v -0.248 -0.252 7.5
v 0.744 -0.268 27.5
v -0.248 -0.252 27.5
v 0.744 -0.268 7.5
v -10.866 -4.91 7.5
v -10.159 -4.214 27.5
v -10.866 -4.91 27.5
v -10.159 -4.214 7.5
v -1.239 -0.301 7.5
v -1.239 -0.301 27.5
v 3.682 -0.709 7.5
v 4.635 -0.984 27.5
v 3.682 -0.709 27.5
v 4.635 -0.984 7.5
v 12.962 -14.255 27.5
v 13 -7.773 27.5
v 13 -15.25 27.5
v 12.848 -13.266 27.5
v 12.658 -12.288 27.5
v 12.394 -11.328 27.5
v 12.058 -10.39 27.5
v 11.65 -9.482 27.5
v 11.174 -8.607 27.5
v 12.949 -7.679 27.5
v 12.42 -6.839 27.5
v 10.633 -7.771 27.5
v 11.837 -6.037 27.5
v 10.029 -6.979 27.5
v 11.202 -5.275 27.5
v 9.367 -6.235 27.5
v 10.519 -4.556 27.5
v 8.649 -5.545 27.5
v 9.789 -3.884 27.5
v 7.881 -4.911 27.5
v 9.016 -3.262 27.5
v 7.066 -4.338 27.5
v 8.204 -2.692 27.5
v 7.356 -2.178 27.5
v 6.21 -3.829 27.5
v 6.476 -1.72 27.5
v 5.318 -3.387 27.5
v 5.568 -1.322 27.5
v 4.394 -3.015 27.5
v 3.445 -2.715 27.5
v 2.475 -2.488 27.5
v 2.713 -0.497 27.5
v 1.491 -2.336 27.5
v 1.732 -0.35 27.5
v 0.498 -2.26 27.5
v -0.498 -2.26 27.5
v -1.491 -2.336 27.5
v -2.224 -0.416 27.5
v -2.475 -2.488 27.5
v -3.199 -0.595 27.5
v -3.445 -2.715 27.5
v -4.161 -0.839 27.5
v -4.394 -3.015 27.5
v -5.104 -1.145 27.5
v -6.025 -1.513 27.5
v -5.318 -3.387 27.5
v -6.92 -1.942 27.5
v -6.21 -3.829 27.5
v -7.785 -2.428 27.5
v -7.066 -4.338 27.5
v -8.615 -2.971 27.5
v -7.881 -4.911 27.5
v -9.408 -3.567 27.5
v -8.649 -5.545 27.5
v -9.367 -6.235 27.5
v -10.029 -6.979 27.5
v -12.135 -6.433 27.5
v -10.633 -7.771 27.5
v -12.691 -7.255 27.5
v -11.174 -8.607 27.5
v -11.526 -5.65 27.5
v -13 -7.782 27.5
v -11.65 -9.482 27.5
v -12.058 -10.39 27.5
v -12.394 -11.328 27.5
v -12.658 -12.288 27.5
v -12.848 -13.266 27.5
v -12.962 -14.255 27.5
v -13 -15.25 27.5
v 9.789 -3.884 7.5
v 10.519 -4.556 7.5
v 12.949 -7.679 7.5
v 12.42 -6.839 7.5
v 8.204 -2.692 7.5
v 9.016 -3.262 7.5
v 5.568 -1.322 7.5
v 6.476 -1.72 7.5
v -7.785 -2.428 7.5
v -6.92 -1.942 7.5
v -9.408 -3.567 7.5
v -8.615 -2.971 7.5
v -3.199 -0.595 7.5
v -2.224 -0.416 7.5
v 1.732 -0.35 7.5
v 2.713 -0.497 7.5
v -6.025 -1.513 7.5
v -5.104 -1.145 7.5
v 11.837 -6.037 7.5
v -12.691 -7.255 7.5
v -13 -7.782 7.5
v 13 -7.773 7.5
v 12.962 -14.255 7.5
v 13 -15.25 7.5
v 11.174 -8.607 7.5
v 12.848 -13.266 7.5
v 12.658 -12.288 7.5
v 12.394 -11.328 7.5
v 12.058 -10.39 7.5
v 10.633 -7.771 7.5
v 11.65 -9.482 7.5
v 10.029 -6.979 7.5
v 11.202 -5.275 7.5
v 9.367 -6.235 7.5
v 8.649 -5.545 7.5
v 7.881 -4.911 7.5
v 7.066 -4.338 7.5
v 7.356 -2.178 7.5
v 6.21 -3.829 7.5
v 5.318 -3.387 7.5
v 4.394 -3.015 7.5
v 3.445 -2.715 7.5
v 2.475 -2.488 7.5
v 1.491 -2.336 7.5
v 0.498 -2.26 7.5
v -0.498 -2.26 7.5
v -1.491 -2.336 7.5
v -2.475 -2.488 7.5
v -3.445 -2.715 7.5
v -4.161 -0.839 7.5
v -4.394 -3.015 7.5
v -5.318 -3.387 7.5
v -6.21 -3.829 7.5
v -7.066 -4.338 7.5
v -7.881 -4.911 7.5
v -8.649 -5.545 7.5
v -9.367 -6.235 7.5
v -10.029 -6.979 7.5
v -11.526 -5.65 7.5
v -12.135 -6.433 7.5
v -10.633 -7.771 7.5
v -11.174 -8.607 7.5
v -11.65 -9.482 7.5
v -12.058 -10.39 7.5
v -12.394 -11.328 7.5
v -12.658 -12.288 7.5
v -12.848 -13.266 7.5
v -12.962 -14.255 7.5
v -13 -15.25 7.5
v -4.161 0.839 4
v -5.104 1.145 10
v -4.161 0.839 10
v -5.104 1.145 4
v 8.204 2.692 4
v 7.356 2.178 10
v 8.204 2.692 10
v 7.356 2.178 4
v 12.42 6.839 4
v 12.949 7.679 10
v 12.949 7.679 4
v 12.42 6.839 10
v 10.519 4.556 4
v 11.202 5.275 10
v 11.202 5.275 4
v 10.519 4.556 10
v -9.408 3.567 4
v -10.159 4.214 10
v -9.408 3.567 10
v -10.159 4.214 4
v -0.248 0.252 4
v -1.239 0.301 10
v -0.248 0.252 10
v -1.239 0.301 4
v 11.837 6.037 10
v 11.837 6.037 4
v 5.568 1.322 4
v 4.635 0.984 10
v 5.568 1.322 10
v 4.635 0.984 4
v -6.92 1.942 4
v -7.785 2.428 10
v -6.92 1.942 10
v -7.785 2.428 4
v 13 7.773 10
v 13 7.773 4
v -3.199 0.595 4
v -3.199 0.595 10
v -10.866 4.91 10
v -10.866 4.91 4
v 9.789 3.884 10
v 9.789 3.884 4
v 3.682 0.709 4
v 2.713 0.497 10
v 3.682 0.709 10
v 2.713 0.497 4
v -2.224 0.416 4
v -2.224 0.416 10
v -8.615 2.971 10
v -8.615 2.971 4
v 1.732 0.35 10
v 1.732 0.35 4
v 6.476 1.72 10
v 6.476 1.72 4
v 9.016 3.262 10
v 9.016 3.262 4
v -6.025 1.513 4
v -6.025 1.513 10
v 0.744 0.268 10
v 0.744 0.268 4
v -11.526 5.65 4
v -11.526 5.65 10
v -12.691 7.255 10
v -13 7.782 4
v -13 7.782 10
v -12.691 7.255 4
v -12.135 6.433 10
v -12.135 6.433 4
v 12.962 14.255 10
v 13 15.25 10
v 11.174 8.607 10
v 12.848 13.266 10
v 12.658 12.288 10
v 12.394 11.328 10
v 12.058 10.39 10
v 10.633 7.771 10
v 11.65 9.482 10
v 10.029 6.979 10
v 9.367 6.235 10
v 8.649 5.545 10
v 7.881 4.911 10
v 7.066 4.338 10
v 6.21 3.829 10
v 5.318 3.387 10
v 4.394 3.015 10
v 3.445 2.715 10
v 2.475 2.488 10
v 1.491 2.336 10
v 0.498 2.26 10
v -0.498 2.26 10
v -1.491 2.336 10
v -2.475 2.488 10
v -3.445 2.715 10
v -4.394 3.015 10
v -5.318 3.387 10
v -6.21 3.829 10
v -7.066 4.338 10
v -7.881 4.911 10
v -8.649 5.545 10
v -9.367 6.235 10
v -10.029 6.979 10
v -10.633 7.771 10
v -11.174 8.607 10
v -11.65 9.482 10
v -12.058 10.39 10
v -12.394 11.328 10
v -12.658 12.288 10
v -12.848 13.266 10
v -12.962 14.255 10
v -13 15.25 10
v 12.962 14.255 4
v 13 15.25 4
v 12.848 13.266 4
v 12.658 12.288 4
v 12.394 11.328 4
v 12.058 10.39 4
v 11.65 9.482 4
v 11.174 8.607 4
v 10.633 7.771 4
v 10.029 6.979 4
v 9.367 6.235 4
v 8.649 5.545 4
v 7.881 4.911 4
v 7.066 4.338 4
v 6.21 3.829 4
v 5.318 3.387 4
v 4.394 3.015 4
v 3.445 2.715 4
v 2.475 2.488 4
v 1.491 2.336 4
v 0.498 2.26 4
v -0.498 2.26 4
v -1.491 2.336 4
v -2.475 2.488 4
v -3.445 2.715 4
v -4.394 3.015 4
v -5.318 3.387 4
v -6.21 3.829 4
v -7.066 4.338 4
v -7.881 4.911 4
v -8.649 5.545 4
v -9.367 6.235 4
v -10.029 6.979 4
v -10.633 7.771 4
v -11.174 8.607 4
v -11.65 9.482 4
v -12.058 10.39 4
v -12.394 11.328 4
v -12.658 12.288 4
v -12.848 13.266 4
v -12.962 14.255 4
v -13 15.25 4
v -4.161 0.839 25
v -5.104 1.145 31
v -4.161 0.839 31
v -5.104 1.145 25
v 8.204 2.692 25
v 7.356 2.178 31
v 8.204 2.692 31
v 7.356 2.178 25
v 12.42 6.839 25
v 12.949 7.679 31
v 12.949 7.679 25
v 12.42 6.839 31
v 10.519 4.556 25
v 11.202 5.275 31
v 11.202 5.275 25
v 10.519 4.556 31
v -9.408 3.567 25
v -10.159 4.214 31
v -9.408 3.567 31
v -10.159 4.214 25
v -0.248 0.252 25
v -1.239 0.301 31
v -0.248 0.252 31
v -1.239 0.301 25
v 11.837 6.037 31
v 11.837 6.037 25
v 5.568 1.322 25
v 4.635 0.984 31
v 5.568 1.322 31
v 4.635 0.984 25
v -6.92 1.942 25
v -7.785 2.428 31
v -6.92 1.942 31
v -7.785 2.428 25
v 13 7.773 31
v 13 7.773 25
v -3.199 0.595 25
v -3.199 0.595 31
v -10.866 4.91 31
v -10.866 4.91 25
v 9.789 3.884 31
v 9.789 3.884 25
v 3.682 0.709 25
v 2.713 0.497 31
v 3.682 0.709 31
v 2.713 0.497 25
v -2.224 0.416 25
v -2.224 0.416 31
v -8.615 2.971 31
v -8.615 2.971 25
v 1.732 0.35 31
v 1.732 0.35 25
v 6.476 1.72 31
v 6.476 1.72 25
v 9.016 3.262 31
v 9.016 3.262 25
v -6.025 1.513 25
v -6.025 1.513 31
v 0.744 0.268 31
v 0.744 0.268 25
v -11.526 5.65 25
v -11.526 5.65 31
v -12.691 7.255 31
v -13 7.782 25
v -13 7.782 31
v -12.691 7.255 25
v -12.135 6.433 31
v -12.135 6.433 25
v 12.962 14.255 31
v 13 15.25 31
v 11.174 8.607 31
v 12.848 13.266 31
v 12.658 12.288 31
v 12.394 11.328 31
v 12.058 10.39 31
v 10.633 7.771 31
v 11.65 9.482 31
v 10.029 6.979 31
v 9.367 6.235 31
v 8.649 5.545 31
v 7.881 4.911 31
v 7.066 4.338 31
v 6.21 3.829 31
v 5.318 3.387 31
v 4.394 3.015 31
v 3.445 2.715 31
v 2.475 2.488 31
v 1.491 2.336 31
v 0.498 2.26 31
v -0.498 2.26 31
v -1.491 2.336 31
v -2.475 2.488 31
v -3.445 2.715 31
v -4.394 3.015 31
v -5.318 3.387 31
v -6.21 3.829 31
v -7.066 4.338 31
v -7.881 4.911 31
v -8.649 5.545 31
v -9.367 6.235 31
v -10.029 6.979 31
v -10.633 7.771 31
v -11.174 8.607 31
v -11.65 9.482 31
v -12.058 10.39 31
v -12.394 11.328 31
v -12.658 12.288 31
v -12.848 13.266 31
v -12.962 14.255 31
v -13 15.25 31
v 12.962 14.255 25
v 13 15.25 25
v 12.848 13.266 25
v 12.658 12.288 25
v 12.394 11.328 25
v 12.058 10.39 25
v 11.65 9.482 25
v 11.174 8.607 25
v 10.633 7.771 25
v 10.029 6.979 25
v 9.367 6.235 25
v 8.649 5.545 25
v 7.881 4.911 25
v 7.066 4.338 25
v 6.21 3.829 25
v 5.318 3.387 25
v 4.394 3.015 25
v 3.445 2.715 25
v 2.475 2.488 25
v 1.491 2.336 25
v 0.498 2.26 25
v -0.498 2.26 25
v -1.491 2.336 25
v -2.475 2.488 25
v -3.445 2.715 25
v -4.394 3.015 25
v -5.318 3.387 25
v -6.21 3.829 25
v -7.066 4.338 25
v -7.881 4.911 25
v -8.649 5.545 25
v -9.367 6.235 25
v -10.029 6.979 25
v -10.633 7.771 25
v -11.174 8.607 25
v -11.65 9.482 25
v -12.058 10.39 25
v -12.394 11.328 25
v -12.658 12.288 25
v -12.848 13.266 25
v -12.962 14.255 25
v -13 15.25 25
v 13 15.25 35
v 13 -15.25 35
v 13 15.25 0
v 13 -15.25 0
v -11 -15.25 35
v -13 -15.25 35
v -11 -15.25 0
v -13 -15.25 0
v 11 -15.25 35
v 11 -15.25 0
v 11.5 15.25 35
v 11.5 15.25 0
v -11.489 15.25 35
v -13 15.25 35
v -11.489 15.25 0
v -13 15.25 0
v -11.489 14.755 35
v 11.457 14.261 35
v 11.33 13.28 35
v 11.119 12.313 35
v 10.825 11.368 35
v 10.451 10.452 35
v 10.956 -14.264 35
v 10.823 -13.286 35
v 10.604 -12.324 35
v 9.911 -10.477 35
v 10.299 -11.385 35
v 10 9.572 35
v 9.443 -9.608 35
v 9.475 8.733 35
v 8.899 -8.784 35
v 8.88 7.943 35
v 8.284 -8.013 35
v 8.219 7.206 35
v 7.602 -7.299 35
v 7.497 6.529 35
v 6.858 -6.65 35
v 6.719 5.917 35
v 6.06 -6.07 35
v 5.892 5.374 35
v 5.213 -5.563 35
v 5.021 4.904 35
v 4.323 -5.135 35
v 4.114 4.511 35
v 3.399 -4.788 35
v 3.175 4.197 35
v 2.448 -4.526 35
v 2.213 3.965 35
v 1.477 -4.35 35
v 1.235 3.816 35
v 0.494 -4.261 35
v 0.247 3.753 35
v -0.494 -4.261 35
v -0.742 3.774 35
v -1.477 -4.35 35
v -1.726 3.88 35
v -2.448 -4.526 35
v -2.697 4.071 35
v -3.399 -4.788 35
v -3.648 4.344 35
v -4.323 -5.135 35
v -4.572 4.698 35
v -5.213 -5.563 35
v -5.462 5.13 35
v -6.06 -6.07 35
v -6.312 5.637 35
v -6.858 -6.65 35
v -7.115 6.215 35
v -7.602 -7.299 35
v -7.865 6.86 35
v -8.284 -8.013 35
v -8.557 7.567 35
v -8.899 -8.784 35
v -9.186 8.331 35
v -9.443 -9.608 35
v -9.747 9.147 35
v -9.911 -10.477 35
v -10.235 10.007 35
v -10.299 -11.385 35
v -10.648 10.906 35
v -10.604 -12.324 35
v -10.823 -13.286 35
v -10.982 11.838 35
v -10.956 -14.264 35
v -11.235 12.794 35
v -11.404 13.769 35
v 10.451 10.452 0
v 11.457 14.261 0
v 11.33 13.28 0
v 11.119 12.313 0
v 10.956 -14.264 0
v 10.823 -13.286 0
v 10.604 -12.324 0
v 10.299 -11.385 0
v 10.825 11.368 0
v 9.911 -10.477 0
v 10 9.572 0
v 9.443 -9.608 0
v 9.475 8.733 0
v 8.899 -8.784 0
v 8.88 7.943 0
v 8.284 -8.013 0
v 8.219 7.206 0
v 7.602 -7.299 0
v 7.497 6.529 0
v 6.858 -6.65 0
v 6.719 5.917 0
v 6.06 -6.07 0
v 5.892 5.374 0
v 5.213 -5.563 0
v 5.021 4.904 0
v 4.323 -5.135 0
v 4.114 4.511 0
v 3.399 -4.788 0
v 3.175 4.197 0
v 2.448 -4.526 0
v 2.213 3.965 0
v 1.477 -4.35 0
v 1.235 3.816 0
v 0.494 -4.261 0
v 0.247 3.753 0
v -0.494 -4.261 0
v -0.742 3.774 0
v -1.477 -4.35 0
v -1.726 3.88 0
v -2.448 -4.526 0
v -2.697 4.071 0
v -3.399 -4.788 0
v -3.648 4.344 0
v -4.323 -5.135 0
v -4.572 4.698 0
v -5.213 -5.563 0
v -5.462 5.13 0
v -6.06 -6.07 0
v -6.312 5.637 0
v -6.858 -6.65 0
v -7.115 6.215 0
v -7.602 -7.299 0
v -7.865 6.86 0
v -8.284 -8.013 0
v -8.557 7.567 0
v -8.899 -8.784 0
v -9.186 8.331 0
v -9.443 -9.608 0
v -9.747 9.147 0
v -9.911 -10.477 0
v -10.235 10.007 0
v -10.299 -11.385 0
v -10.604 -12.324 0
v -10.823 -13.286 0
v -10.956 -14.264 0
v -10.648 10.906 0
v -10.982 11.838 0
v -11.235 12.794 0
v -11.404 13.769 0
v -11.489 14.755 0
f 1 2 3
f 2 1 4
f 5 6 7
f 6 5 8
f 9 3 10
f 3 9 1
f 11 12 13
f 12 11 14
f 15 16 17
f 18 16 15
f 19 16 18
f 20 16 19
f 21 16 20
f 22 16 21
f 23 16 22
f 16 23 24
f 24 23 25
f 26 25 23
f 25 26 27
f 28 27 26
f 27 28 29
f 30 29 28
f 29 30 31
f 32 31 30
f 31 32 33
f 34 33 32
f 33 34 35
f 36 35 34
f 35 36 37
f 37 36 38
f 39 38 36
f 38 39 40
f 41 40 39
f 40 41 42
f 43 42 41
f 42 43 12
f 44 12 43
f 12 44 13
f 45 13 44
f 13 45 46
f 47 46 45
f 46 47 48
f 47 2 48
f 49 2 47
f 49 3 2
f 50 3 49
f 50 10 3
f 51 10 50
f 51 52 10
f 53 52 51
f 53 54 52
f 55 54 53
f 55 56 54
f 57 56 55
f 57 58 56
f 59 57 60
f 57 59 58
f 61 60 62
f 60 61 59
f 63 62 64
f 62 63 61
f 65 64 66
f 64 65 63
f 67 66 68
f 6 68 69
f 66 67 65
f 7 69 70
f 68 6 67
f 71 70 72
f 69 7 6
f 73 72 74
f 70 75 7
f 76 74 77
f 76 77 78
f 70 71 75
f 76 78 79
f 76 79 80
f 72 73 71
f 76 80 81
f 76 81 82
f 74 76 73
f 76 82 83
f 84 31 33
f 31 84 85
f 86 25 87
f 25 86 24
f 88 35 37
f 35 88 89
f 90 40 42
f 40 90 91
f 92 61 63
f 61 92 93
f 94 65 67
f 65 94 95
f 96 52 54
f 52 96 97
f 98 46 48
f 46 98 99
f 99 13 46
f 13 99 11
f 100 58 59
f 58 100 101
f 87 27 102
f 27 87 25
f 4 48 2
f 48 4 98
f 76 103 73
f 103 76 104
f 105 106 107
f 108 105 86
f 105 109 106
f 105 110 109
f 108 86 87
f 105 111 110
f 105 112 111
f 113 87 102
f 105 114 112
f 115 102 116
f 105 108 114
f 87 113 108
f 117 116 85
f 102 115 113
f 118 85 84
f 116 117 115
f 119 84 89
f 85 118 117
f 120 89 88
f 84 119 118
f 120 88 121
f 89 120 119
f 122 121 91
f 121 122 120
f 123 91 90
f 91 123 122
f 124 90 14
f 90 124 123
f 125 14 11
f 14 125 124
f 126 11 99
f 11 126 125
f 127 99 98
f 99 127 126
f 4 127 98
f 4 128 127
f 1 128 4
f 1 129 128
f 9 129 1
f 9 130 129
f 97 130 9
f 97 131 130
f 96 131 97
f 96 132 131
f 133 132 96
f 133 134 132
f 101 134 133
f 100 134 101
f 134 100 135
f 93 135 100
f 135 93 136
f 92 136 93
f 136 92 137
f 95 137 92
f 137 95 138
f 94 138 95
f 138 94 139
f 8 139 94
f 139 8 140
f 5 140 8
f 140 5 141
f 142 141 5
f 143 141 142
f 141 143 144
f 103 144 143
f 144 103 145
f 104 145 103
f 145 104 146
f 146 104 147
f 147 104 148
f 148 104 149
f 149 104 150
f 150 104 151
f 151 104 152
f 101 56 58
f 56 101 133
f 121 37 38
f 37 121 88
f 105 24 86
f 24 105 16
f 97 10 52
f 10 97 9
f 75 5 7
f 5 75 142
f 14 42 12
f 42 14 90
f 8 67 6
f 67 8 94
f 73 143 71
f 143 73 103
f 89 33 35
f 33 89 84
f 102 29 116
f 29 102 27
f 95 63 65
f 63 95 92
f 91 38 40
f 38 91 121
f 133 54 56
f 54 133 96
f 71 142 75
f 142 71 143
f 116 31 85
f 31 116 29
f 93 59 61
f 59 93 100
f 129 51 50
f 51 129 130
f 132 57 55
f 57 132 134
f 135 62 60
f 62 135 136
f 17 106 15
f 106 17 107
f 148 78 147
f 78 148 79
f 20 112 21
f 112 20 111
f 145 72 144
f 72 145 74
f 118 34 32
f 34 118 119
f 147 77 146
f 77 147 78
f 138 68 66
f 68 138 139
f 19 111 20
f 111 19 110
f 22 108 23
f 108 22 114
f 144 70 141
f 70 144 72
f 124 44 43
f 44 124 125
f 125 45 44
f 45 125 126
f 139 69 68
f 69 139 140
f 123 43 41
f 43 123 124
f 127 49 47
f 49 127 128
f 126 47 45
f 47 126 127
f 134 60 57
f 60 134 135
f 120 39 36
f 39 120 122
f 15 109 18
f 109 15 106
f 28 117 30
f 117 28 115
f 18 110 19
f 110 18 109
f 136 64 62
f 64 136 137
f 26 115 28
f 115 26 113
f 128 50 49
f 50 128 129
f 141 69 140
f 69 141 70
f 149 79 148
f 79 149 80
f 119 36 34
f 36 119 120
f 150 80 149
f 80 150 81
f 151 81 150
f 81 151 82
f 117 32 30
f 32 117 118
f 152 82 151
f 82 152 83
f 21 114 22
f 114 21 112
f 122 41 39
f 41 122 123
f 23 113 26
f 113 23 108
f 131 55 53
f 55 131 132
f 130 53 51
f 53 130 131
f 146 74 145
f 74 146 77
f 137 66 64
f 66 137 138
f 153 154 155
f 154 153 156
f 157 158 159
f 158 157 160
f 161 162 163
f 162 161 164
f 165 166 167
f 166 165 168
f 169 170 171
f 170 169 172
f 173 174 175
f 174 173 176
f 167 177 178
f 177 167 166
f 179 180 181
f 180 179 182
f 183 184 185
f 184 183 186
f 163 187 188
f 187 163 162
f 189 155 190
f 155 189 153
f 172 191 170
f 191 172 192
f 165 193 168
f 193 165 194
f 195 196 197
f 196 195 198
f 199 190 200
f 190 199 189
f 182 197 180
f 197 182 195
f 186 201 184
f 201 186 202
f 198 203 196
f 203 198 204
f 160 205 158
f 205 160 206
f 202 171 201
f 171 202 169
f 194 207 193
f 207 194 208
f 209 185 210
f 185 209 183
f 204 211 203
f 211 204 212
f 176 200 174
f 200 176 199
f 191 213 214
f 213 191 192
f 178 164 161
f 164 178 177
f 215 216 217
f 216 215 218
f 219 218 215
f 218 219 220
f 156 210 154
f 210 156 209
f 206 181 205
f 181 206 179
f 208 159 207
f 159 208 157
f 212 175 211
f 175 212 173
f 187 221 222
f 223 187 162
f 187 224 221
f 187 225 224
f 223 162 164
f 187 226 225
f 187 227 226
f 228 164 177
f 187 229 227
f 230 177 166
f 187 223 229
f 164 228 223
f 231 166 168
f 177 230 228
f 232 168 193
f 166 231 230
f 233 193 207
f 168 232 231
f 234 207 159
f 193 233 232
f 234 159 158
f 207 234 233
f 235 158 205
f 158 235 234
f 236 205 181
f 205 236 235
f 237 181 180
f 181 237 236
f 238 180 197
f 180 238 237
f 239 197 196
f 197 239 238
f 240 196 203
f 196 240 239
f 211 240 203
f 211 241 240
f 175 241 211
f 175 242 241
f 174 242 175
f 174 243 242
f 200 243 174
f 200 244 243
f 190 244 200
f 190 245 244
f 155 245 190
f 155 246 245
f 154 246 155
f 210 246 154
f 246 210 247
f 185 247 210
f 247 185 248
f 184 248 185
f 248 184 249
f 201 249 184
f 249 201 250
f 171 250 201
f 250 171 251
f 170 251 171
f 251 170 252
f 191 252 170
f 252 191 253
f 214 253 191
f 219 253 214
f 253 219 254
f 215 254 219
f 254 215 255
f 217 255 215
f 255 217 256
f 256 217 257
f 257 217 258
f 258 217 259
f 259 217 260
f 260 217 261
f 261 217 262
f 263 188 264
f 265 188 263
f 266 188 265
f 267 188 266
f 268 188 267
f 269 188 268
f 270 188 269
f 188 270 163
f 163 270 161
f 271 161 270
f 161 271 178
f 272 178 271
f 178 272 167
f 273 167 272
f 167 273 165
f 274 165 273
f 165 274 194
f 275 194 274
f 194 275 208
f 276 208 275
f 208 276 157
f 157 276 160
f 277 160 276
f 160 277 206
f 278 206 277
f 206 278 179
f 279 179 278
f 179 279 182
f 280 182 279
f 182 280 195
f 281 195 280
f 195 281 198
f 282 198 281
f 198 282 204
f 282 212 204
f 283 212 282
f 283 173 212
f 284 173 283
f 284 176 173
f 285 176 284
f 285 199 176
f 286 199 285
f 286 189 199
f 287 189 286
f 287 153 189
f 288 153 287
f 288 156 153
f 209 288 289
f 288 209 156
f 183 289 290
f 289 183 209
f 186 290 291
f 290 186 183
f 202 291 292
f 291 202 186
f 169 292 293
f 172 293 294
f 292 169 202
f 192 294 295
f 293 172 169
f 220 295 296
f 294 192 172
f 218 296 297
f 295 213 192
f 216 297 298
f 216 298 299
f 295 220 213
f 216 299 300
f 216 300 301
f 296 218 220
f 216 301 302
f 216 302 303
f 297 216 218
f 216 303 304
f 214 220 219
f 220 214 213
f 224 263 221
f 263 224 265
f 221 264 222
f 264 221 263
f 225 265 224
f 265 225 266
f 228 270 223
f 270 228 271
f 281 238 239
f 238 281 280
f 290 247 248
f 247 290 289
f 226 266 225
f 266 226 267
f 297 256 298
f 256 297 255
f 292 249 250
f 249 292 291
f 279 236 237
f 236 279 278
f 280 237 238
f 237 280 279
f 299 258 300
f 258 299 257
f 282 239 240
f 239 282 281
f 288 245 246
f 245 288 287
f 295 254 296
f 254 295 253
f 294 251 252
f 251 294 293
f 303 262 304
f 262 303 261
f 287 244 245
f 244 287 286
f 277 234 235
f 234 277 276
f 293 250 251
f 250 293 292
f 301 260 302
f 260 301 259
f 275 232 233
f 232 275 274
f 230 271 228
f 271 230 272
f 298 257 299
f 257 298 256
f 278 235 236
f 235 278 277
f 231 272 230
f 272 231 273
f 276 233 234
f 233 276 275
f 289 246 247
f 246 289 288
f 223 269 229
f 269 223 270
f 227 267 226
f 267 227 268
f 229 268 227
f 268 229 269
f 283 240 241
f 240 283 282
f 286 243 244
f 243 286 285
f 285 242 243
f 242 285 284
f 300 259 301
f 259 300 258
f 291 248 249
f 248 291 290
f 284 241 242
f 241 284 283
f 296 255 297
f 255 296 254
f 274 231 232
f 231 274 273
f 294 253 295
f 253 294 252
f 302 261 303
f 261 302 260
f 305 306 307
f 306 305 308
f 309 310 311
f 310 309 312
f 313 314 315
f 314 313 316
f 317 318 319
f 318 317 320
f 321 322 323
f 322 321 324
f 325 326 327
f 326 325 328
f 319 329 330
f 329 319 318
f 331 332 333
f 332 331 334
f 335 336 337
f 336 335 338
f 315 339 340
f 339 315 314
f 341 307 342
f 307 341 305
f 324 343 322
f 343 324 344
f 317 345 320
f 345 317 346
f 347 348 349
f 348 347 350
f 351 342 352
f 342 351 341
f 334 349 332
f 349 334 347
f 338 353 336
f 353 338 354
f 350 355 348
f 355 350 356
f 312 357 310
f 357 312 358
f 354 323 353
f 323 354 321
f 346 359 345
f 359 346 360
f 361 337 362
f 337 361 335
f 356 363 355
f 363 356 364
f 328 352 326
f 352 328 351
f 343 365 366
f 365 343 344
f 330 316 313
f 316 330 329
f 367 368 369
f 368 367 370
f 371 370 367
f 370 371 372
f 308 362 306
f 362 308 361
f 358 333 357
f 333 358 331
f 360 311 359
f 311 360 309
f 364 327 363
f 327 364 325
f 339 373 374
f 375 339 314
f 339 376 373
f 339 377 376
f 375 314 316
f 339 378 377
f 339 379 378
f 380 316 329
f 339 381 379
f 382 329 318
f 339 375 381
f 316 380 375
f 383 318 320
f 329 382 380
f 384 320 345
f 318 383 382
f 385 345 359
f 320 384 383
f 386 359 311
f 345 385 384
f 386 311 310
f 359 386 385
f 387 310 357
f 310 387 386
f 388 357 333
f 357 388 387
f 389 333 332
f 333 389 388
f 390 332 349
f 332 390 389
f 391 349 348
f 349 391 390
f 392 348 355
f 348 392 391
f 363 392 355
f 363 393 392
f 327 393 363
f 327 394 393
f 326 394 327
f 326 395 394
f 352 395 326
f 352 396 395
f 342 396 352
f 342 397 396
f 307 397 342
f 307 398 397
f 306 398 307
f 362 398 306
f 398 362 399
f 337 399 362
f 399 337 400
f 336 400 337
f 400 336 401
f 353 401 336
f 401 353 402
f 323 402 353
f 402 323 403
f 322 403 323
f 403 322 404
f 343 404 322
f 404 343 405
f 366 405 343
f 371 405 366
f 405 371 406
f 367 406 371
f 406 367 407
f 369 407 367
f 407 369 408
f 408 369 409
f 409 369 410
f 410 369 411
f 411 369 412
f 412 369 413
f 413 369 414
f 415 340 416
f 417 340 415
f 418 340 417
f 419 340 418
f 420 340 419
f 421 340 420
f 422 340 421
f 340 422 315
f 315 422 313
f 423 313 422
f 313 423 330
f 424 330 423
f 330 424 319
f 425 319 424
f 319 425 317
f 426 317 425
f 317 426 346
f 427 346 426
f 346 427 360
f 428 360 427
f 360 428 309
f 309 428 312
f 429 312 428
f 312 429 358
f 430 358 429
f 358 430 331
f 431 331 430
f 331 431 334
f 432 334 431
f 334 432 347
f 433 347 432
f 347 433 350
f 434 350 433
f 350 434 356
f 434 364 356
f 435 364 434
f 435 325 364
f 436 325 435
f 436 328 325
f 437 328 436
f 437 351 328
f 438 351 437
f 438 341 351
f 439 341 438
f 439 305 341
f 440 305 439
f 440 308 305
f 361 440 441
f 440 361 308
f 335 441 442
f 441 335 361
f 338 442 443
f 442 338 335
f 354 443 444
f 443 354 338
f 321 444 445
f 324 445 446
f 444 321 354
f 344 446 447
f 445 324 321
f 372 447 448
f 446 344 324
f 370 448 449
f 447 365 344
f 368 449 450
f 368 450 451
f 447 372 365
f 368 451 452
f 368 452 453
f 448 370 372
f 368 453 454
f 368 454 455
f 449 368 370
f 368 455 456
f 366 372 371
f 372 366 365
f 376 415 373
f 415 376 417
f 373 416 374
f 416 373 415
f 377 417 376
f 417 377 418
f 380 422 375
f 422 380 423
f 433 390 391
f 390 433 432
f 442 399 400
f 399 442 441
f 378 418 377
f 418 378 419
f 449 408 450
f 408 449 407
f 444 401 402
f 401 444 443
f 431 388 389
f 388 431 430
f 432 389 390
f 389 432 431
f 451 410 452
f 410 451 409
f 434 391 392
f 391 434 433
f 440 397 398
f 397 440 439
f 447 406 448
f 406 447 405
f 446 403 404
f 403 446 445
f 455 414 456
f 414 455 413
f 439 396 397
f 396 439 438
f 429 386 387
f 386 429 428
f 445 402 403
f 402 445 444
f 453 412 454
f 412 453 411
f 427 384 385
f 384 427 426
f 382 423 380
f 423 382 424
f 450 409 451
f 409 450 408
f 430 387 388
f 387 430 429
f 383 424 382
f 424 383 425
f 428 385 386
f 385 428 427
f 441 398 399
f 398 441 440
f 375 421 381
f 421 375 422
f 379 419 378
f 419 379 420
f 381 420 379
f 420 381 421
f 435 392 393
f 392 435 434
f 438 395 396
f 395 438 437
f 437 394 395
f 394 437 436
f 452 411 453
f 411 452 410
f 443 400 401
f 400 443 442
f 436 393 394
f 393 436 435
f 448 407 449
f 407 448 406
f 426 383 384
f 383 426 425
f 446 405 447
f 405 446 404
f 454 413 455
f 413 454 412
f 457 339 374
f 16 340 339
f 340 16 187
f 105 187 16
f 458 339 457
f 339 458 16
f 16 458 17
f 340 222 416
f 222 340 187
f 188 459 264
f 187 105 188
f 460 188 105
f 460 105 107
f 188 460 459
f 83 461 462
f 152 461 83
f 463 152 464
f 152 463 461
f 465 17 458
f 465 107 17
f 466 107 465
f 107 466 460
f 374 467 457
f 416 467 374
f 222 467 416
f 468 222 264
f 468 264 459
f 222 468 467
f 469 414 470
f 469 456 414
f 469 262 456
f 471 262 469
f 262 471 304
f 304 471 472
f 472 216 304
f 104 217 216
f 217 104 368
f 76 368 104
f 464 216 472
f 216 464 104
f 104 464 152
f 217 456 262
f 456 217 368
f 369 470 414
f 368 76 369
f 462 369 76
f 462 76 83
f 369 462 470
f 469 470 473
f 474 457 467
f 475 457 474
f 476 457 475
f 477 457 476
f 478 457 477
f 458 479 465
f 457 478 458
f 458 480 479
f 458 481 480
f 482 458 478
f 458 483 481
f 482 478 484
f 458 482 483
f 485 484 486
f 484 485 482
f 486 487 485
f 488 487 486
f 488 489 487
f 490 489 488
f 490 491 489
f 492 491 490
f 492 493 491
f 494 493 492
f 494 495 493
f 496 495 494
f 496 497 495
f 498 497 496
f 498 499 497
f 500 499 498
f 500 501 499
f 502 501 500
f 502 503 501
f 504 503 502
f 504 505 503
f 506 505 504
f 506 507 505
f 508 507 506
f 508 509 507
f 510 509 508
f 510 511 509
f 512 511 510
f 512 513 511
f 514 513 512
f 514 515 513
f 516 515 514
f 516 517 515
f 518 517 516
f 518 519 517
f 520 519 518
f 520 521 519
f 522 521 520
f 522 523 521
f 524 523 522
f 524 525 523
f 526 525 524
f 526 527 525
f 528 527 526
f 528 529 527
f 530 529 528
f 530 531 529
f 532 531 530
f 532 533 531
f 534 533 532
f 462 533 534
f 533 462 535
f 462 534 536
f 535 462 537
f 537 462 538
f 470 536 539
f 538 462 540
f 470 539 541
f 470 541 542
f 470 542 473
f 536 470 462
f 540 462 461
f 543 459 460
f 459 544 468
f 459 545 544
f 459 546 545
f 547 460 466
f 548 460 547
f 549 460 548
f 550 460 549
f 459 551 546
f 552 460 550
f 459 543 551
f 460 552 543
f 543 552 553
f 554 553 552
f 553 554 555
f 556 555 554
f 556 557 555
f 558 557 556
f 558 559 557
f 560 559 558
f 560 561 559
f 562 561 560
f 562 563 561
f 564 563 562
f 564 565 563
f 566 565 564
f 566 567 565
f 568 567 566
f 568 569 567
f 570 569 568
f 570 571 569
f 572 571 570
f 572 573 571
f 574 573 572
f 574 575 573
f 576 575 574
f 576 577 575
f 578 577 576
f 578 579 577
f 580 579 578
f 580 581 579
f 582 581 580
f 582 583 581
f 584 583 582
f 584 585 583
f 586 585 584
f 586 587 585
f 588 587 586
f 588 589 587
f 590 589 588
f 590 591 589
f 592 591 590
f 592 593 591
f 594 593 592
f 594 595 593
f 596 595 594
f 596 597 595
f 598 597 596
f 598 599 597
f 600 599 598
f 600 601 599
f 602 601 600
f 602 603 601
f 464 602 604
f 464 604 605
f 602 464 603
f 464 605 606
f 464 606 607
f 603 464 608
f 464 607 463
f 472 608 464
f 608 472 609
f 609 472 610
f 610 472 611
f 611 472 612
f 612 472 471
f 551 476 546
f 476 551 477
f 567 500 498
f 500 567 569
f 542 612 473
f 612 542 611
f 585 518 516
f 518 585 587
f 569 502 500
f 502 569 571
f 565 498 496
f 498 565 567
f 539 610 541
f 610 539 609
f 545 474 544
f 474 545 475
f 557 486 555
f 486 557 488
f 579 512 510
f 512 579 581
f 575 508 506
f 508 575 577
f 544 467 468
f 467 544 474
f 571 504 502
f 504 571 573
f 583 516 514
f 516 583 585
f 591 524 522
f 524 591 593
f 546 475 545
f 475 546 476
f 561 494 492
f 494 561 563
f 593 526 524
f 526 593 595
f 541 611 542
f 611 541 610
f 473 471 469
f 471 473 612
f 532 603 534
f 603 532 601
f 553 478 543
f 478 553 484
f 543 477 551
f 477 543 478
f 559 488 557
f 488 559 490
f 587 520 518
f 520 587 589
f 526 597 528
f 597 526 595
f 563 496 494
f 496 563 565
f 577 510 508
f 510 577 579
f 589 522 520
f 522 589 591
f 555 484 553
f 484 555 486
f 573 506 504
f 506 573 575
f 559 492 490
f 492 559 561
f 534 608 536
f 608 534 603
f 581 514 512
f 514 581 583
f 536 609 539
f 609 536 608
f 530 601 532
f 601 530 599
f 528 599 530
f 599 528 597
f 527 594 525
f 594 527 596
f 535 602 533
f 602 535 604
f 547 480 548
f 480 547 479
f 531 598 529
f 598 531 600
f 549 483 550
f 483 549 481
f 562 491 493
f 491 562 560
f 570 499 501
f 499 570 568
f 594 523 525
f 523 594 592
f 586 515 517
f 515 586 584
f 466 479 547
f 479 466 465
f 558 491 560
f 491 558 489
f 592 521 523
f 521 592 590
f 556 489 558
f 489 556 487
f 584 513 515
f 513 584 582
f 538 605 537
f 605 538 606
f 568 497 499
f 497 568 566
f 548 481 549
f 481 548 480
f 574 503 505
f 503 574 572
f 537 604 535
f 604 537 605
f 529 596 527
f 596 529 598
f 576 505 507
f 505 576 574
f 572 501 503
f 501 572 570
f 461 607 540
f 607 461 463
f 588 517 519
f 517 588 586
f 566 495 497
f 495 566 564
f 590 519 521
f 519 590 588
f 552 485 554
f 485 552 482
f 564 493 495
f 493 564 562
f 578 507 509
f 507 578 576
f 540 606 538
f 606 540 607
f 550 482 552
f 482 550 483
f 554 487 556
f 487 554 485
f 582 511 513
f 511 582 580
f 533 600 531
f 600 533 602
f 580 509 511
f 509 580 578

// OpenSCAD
// mount for carbon fiber tube

$fs = 1;
$fa = 0.4;

inner_tube_thickness = 1;
bar_diameter = 22+inner_tube_thickness;
tol = 0.001;
mount_width = 35;
mount_standoff = 35;
mount_height = 26;
flashlight_diameter = 21+inner_tube_thickness;

flashlight_width = 30;

bar_flashlight_gap = 8;

bar_overhang = bar_diameter/2;
flashlight_overhang = flashlight_diameter/2;

module zip_tie(zip_tie_width=6, zip_tie_radius = 30, zip_tie_height = 2) {
rotate([0, 0, 0])
difference() {
// outside
cylinder(r=zip_tie_radius+zip_tie_height, h=zip_tie_width, center=true);
// inside
cylinder(r=zip_tie_radius, h=zip_tie_width+tol, center=true);
}   
}

module flashlight(diameter=24, lenght=50) {
    rotate([0, 90, 0])
    cylinder(r=diameter/2, h=lenght, center=true);
}


module bar_mount() {
difference() {
    resize([mount_width, 15, bar_diameter+3])
cube([mount_width, 1, 1], center=true);

translate([0, bar_diameter/2 , 0])
rotate([0, 90, 0])
cylinder(r=bar_diameter/2, h=mount_width+5, center=true);
    
    // zip tie cut out
    translate([-mount_width/2+5, bar_diameter/2, 0])
 zip_tie(zip_tie_radius=bar_diameter/2+7);

translate([mount_width/2-5, bar_diameter/2, 0])
 zip_tie(zip_tie_radius=bar_diameter/2+7);

//translate([0, -flashlight_diameter/2-bar_flashlight_gap/2, 0])
//flashlight();
}

}

//bar_mount();
module flashlight_mount() {
difference() {
    resize([flashlight_width, flashlight_diameter+3, flashlight_diameter+1]) 
    cube([mount_width, 1, 1], center=true);
    
    translate([0, flashlight_diameter/2 , 0]){
rotate([0, 90, 0])
cylinder(r=flashlight_diameter/2, h=flashlight_width+5, center=true);

zip_tie(zip_tie_radius=flashlight_diameter/2+3, zip_tie_width=20);
    }

translate([0, -13, 0])
cube([mount_width, flashlight_diameter, flashlight_diameter+10], center=true);
}
}

/* translate([0, 7, 0]) */
/* bar_mount(); */
/* translate([0, -5, 0]) */
/* rotate([180, 0, 0]) */
/* flashlight_mount(); */

cube_height = flashlight_diameter/2+bar_diameter/2+bar_flashlight_gap;
flashlight_center = [0, 0, cube_height/2];
bar_center = [0, 0, -cube_height/2];

translate([0, 0, mount_width/2])
rotate([90, 0, 0])
difference() {
cube([mount_height, mount_width, cube_height], center=true);
translate(bar_center) rotate([90, 0, 0]) cylinder(r=bar_diameter/2, h=mount_width+5, center=true);
translate(flashlight_center) rotate([90, 0, 0]) cylinder(r=flashlight_diameter/2, h=mount_width+5, center=true);
// flashlight zip ties/velcro
translate(flashlight_center) rotate([90, 0, 0]) zip_tie(zip_tie_width=20, zip_tie_radius=mount_height/2, zip_tie_height=2);

// bar zip ties
translate([0, -mount_width/2+7, 0]) translate(bar_center) rotate([90, 0, 0]) zip_tie(zip_tie_width=6, zip_tie_radius=mount_height/2, zip_tie_height=2);
translate([0, mount_width/2-7, 0]) translate(bar_center) rotate([90, 0, 0]) zip_tie(zip_tie_width=6, zip_tie_radius=mount_height/2, zip_tie_height=2);
}
